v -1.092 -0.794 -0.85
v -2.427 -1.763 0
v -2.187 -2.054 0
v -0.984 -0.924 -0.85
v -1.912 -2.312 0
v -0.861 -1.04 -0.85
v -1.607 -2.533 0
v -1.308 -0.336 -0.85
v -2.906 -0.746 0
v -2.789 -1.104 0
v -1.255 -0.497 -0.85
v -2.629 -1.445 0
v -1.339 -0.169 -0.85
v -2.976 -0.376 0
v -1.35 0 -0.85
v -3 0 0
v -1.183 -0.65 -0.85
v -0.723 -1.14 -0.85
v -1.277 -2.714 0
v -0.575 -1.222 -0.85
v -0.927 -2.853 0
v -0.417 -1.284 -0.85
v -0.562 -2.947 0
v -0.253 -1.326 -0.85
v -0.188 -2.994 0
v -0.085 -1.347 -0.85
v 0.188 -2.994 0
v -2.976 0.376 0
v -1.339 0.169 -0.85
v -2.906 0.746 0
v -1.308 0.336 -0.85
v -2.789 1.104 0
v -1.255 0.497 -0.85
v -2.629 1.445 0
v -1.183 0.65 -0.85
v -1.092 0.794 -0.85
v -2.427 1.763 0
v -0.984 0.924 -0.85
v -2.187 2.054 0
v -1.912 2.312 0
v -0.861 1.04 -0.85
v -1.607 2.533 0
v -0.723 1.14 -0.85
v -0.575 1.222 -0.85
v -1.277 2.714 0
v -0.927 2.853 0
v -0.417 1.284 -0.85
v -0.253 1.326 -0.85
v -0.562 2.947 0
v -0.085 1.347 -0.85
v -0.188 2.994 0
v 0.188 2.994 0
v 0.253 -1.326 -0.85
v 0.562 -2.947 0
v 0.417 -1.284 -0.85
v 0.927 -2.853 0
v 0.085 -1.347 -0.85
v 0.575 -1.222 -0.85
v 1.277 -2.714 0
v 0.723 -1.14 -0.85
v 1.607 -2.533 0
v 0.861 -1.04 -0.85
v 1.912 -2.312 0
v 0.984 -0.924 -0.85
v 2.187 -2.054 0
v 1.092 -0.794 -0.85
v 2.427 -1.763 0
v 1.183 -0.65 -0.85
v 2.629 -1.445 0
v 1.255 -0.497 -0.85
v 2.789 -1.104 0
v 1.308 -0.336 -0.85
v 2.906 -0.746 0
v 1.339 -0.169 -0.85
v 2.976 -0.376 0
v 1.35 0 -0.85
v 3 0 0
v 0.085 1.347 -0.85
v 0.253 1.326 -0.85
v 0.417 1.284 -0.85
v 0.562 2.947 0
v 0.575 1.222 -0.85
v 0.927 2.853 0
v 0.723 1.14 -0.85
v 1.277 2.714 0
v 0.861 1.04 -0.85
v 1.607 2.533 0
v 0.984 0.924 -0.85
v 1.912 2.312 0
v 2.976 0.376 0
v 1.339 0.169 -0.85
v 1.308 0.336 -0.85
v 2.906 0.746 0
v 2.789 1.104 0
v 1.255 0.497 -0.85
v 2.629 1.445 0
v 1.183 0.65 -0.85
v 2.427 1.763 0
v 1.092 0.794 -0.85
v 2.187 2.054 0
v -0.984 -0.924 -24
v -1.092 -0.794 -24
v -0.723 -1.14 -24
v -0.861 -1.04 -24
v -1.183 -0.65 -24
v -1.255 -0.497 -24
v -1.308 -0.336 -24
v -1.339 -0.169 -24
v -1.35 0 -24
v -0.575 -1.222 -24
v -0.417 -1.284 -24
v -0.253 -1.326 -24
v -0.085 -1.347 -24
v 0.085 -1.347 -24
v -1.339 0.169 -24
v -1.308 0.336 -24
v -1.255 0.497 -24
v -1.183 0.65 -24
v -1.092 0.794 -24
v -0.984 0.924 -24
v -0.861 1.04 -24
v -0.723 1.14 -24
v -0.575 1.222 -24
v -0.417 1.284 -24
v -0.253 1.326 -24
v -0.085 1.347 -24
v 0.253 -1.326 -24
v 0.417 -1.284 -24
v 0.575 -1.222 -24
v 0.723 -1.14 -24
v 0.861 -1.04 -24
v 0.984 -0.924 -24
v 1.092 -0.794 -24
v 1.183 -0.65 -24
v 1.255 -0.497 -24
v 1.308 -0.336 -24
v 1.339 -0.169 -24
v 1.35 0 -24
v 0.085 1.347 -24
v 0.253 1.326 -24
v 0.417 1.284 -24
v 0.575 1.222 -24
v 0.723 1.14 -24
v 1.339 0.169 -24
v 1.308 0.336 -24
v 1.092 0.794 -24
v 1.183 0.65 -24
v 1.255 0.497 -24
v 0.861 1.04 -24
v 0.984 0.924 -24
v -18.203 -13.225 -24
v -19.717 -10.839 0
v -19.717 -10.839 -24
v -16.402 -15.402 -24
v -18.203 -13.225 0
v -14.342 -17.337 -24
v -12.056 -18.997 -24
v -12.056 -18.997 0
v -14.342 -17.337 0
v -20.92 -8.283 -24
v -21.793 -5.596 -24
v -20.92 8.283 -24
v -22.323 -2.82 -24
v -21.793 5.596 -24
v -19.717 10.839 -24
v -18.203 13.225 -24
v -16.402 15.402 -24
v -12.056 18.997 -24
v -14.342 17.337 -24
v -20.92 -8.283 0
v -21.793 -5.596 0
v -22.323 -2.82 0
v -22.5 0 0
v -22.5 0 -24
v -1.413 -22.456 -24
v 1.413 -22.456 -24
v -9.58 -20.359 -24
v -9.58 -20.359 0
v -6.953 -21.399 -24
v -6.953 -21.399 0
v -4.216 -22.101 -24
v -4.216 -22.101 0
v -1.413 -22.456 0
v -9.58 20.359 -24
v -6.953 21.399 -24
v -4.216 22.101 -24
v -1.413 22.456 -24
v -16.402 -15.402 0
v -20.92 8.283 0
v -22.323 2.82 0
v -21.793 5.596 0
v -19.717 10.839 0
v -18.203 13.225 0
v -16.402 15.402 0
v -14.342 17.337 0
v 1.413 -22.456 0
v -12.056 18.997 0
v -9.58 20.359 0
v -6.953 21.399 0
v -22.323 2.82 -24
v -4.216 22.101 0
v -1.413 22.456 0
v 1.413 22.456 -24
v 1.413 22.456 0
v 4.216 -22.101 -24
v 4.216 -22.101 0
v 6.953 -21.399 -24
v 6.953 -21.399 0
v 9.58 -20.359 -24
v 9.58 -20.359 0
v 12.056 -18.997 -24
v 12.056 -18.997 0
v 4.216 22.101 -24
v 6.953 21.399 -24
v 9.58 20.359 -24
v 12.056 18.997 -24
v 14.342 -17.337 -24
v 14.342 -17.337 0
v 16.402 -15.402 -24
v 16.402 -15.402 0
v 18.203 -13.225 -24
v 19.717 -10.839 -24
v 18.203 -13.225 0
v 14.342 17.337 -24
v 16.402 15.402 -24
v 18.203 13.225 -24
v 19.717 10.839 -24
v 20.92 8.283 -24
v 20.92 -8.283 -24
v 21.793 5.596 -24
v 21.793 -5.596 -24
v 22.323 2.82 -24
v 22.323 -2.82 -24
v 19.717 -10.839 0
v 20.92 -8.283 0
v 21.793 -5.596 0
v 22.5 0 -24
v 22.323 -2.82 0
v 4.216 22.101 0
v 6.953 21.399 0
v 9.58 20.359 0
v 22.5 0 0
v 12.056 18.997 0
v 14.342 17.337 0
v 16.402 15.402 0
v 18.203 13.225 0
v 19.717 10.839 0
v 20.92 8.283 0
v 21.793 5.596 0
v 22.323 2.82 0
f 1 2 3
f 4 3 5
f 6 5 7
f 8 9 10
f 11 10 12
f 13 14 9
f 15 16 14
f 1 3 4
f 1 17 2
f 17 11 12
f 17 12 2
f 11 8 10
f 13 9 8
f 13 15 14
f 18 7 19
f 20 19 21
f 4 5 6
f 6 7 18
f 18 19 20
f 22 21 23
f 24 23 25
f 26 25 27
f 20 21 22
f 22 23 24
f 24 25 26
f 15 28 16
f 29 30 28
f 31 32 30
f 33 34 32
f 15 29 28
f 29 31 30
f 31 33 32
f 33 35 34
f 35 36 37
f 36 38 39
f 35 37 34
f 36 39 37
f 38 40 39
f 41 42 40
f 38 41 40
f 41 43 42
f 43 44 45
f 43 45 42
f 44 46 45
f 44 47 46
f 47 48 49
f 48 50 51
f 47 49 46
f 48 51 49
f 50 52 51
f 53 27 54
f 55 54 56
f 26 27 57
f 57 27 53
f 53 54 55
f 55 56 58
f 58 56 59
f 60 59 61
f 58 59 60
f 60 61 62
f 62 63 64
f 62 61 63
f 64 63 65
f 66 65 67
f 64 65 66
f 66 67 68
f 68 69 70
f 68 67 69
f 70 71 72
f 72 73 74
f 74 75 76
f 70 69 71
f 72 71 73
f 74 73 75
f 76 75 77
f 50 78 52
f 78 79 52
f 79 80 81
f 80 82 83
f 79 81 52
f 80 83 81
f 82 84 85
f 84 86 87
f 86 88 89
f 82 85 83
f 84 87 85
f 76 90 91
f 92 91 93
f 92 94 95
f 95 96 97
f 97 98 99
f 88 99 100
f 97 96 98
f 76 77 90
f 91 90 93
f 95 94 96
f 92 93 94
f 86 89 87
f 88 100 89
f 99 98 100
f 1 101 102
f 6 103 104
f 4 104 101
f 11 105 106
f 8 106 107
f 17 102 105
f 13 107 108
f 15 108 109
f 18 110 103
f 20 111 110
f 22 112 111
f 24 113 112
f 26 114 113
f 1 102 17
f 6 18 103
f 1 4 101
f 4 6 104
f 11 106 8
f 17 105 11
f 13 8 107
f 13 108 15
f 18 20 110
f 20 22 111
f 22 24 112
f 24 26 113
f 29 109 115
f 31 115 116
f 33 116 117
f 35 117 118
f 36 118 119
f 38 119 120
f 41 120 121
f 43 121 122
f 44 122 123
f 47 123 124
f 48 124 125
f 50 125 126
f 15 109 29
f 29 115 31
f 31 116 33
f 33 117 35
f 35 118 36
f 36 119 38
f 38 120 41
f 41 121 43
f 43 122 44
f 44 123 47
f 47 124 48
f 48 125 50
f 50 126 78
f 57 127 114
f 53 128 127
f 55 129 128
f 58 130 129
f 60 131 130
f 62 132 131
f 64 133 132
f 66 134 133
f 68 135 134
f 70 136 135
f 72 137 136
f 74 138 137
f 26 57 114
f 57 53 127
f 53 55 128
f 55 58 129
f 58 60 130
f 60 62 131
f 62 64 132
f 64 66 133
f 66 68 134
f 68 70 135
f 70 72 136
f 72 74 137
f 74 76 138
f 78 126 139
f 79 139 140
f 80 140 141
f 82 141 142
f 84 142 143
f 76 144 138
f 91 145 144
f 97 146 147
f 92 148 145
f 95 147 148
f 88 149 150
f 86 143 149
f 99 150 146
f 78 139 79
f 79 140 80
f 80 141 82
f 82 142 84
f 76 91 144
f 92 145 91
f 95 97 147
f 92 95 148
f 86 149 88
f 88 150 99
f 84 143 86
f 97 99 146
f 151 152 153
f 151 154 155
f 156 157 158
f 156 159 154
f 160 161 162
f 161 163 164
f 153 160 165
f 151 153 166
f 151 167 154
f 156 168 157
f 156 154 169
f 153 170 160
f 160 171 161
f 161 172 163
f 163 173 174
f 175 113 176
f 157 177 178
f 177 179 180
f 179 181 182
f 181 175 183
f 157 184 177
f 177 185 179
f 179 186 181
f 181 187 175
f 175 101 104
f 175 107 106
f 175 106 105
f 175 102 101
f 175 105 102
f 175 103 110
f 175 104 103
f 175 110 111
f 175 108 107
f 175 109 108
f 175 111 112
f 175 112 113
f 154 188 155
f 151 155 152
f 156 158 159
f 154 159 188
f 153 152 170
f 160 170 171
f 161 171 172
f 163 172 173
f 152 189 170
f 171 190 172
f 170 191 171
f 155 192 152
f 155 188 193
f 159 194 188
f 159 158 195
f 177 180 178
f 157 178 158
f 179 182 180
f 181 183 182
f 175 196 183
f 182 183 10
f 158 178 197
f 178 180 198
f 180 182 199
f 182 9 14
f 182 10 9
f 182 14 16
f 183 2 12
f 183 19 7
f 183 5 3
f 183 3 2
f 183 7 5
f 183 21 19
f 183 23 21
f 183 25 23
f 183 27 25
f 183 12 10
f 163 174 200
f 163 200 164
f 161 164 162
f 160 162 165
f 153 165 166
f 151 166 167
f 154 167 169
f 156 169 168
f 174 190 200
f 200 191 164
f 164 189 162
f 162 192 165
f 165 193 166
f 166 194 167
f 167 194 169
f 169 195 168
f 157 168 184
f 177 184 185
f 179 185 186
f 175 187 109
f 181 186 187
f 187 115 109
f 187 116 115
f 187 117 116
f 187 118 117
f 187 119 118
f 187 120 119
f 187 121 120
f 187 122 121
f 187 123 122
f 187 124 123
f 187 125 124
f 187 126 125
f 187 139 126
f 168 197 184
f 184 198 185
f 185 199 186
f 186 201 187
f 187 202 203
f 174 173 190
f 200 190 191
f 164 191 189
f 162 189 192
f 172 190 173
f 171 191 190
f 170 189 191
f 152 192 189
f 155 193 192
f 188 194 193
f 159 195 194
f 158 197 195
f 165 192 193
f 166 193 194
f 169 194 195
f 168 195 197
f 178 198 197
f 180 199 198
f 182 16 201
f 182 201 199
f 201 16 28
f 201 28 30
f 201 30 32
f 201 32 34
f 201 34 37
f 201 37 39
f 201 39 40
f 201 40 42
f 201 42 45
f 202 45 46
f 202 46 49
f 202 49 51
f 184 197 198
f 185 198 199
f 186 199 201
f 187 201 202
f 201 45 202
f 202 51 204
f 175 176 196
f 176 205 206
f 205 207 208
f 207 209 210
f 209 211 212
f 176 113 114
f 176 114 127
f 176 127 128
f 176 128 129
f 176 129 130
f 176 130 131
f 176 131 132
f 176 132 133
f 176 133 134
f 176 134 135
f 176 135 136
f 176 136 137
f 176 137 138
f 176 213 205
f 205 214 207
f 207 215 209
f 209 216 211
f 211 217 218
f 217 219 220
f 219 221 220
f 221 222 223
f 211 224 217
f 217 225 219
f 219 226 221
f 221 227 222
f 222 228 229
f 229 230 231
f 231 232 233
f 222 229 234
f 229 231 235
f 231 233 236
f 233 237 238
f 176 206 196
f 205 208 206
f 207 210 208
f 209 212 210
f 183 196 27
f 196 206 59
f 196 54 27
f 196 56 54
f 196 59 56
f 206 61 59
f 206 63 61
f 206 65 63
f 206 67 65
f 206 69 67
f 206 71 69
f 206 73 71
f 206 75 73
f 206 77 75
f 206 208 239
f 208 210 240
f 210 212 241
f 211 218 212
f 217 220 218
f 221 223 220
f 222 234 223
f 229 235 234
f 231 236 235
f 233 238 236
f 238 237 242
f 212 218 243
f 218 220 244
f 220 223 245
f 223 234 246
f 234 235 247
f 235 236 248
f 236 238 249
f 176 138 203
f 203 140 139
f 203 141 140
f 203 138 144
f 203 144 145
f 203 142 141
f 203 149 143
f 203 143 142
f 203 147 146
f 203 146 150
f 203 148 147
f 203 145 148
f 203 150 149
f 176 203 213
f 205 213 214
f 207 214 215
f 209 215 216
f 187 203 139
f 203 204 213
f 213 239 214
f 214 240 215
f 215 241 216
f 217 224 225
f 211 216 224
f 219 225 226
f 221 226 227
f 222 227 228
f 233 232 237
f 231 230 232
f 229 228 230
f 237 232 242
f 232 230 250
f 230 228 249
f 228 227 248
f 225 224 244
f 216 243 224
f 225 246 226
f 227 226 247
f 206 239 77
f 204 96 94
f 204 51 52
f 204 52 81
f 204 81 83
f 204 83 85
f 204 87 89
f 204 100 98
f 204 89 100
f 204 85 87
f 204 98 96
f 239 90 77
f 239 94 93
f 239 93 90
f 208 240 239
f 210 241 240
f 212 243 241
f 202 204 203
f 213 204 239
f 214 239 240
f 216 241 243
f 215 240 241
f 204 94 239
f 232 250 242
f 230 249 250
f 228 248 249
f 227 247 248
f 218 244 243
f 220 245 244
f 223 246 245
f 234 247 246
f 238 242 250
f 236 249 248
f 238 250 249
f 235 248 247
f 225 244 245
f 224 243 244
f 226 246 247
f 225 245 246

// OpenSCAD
$fn = 50;

difference() {
	union() {
		translate(v = [0, 0, -24.0]) {
			cylinder(h = 24, r = 22.5);
		}
	}
	union() {
		translate(v = [0, 0, 0]) {
			rotate(a = [0, 0, 0]) {
				difference() {
					union() {
						translate(v = [0, 0, -27.0]) {
							cylinder(h = 27, r = 1.0);
						}
						translate(v = [0, 0, -0.85]) {
							cylinder(h = 0.85, r1 = 1.35, r2 = 3.0);
						}
						translate(v = [0, 0, -27.0]) {
							cylinder(h = 27, r = 1.35);
						}
						translate(v = [0, 0, -27.0]) {
							cylinder(h = 27, r = 1.0);
						}
					}
					union();
				}
			}
		}
	}
}
